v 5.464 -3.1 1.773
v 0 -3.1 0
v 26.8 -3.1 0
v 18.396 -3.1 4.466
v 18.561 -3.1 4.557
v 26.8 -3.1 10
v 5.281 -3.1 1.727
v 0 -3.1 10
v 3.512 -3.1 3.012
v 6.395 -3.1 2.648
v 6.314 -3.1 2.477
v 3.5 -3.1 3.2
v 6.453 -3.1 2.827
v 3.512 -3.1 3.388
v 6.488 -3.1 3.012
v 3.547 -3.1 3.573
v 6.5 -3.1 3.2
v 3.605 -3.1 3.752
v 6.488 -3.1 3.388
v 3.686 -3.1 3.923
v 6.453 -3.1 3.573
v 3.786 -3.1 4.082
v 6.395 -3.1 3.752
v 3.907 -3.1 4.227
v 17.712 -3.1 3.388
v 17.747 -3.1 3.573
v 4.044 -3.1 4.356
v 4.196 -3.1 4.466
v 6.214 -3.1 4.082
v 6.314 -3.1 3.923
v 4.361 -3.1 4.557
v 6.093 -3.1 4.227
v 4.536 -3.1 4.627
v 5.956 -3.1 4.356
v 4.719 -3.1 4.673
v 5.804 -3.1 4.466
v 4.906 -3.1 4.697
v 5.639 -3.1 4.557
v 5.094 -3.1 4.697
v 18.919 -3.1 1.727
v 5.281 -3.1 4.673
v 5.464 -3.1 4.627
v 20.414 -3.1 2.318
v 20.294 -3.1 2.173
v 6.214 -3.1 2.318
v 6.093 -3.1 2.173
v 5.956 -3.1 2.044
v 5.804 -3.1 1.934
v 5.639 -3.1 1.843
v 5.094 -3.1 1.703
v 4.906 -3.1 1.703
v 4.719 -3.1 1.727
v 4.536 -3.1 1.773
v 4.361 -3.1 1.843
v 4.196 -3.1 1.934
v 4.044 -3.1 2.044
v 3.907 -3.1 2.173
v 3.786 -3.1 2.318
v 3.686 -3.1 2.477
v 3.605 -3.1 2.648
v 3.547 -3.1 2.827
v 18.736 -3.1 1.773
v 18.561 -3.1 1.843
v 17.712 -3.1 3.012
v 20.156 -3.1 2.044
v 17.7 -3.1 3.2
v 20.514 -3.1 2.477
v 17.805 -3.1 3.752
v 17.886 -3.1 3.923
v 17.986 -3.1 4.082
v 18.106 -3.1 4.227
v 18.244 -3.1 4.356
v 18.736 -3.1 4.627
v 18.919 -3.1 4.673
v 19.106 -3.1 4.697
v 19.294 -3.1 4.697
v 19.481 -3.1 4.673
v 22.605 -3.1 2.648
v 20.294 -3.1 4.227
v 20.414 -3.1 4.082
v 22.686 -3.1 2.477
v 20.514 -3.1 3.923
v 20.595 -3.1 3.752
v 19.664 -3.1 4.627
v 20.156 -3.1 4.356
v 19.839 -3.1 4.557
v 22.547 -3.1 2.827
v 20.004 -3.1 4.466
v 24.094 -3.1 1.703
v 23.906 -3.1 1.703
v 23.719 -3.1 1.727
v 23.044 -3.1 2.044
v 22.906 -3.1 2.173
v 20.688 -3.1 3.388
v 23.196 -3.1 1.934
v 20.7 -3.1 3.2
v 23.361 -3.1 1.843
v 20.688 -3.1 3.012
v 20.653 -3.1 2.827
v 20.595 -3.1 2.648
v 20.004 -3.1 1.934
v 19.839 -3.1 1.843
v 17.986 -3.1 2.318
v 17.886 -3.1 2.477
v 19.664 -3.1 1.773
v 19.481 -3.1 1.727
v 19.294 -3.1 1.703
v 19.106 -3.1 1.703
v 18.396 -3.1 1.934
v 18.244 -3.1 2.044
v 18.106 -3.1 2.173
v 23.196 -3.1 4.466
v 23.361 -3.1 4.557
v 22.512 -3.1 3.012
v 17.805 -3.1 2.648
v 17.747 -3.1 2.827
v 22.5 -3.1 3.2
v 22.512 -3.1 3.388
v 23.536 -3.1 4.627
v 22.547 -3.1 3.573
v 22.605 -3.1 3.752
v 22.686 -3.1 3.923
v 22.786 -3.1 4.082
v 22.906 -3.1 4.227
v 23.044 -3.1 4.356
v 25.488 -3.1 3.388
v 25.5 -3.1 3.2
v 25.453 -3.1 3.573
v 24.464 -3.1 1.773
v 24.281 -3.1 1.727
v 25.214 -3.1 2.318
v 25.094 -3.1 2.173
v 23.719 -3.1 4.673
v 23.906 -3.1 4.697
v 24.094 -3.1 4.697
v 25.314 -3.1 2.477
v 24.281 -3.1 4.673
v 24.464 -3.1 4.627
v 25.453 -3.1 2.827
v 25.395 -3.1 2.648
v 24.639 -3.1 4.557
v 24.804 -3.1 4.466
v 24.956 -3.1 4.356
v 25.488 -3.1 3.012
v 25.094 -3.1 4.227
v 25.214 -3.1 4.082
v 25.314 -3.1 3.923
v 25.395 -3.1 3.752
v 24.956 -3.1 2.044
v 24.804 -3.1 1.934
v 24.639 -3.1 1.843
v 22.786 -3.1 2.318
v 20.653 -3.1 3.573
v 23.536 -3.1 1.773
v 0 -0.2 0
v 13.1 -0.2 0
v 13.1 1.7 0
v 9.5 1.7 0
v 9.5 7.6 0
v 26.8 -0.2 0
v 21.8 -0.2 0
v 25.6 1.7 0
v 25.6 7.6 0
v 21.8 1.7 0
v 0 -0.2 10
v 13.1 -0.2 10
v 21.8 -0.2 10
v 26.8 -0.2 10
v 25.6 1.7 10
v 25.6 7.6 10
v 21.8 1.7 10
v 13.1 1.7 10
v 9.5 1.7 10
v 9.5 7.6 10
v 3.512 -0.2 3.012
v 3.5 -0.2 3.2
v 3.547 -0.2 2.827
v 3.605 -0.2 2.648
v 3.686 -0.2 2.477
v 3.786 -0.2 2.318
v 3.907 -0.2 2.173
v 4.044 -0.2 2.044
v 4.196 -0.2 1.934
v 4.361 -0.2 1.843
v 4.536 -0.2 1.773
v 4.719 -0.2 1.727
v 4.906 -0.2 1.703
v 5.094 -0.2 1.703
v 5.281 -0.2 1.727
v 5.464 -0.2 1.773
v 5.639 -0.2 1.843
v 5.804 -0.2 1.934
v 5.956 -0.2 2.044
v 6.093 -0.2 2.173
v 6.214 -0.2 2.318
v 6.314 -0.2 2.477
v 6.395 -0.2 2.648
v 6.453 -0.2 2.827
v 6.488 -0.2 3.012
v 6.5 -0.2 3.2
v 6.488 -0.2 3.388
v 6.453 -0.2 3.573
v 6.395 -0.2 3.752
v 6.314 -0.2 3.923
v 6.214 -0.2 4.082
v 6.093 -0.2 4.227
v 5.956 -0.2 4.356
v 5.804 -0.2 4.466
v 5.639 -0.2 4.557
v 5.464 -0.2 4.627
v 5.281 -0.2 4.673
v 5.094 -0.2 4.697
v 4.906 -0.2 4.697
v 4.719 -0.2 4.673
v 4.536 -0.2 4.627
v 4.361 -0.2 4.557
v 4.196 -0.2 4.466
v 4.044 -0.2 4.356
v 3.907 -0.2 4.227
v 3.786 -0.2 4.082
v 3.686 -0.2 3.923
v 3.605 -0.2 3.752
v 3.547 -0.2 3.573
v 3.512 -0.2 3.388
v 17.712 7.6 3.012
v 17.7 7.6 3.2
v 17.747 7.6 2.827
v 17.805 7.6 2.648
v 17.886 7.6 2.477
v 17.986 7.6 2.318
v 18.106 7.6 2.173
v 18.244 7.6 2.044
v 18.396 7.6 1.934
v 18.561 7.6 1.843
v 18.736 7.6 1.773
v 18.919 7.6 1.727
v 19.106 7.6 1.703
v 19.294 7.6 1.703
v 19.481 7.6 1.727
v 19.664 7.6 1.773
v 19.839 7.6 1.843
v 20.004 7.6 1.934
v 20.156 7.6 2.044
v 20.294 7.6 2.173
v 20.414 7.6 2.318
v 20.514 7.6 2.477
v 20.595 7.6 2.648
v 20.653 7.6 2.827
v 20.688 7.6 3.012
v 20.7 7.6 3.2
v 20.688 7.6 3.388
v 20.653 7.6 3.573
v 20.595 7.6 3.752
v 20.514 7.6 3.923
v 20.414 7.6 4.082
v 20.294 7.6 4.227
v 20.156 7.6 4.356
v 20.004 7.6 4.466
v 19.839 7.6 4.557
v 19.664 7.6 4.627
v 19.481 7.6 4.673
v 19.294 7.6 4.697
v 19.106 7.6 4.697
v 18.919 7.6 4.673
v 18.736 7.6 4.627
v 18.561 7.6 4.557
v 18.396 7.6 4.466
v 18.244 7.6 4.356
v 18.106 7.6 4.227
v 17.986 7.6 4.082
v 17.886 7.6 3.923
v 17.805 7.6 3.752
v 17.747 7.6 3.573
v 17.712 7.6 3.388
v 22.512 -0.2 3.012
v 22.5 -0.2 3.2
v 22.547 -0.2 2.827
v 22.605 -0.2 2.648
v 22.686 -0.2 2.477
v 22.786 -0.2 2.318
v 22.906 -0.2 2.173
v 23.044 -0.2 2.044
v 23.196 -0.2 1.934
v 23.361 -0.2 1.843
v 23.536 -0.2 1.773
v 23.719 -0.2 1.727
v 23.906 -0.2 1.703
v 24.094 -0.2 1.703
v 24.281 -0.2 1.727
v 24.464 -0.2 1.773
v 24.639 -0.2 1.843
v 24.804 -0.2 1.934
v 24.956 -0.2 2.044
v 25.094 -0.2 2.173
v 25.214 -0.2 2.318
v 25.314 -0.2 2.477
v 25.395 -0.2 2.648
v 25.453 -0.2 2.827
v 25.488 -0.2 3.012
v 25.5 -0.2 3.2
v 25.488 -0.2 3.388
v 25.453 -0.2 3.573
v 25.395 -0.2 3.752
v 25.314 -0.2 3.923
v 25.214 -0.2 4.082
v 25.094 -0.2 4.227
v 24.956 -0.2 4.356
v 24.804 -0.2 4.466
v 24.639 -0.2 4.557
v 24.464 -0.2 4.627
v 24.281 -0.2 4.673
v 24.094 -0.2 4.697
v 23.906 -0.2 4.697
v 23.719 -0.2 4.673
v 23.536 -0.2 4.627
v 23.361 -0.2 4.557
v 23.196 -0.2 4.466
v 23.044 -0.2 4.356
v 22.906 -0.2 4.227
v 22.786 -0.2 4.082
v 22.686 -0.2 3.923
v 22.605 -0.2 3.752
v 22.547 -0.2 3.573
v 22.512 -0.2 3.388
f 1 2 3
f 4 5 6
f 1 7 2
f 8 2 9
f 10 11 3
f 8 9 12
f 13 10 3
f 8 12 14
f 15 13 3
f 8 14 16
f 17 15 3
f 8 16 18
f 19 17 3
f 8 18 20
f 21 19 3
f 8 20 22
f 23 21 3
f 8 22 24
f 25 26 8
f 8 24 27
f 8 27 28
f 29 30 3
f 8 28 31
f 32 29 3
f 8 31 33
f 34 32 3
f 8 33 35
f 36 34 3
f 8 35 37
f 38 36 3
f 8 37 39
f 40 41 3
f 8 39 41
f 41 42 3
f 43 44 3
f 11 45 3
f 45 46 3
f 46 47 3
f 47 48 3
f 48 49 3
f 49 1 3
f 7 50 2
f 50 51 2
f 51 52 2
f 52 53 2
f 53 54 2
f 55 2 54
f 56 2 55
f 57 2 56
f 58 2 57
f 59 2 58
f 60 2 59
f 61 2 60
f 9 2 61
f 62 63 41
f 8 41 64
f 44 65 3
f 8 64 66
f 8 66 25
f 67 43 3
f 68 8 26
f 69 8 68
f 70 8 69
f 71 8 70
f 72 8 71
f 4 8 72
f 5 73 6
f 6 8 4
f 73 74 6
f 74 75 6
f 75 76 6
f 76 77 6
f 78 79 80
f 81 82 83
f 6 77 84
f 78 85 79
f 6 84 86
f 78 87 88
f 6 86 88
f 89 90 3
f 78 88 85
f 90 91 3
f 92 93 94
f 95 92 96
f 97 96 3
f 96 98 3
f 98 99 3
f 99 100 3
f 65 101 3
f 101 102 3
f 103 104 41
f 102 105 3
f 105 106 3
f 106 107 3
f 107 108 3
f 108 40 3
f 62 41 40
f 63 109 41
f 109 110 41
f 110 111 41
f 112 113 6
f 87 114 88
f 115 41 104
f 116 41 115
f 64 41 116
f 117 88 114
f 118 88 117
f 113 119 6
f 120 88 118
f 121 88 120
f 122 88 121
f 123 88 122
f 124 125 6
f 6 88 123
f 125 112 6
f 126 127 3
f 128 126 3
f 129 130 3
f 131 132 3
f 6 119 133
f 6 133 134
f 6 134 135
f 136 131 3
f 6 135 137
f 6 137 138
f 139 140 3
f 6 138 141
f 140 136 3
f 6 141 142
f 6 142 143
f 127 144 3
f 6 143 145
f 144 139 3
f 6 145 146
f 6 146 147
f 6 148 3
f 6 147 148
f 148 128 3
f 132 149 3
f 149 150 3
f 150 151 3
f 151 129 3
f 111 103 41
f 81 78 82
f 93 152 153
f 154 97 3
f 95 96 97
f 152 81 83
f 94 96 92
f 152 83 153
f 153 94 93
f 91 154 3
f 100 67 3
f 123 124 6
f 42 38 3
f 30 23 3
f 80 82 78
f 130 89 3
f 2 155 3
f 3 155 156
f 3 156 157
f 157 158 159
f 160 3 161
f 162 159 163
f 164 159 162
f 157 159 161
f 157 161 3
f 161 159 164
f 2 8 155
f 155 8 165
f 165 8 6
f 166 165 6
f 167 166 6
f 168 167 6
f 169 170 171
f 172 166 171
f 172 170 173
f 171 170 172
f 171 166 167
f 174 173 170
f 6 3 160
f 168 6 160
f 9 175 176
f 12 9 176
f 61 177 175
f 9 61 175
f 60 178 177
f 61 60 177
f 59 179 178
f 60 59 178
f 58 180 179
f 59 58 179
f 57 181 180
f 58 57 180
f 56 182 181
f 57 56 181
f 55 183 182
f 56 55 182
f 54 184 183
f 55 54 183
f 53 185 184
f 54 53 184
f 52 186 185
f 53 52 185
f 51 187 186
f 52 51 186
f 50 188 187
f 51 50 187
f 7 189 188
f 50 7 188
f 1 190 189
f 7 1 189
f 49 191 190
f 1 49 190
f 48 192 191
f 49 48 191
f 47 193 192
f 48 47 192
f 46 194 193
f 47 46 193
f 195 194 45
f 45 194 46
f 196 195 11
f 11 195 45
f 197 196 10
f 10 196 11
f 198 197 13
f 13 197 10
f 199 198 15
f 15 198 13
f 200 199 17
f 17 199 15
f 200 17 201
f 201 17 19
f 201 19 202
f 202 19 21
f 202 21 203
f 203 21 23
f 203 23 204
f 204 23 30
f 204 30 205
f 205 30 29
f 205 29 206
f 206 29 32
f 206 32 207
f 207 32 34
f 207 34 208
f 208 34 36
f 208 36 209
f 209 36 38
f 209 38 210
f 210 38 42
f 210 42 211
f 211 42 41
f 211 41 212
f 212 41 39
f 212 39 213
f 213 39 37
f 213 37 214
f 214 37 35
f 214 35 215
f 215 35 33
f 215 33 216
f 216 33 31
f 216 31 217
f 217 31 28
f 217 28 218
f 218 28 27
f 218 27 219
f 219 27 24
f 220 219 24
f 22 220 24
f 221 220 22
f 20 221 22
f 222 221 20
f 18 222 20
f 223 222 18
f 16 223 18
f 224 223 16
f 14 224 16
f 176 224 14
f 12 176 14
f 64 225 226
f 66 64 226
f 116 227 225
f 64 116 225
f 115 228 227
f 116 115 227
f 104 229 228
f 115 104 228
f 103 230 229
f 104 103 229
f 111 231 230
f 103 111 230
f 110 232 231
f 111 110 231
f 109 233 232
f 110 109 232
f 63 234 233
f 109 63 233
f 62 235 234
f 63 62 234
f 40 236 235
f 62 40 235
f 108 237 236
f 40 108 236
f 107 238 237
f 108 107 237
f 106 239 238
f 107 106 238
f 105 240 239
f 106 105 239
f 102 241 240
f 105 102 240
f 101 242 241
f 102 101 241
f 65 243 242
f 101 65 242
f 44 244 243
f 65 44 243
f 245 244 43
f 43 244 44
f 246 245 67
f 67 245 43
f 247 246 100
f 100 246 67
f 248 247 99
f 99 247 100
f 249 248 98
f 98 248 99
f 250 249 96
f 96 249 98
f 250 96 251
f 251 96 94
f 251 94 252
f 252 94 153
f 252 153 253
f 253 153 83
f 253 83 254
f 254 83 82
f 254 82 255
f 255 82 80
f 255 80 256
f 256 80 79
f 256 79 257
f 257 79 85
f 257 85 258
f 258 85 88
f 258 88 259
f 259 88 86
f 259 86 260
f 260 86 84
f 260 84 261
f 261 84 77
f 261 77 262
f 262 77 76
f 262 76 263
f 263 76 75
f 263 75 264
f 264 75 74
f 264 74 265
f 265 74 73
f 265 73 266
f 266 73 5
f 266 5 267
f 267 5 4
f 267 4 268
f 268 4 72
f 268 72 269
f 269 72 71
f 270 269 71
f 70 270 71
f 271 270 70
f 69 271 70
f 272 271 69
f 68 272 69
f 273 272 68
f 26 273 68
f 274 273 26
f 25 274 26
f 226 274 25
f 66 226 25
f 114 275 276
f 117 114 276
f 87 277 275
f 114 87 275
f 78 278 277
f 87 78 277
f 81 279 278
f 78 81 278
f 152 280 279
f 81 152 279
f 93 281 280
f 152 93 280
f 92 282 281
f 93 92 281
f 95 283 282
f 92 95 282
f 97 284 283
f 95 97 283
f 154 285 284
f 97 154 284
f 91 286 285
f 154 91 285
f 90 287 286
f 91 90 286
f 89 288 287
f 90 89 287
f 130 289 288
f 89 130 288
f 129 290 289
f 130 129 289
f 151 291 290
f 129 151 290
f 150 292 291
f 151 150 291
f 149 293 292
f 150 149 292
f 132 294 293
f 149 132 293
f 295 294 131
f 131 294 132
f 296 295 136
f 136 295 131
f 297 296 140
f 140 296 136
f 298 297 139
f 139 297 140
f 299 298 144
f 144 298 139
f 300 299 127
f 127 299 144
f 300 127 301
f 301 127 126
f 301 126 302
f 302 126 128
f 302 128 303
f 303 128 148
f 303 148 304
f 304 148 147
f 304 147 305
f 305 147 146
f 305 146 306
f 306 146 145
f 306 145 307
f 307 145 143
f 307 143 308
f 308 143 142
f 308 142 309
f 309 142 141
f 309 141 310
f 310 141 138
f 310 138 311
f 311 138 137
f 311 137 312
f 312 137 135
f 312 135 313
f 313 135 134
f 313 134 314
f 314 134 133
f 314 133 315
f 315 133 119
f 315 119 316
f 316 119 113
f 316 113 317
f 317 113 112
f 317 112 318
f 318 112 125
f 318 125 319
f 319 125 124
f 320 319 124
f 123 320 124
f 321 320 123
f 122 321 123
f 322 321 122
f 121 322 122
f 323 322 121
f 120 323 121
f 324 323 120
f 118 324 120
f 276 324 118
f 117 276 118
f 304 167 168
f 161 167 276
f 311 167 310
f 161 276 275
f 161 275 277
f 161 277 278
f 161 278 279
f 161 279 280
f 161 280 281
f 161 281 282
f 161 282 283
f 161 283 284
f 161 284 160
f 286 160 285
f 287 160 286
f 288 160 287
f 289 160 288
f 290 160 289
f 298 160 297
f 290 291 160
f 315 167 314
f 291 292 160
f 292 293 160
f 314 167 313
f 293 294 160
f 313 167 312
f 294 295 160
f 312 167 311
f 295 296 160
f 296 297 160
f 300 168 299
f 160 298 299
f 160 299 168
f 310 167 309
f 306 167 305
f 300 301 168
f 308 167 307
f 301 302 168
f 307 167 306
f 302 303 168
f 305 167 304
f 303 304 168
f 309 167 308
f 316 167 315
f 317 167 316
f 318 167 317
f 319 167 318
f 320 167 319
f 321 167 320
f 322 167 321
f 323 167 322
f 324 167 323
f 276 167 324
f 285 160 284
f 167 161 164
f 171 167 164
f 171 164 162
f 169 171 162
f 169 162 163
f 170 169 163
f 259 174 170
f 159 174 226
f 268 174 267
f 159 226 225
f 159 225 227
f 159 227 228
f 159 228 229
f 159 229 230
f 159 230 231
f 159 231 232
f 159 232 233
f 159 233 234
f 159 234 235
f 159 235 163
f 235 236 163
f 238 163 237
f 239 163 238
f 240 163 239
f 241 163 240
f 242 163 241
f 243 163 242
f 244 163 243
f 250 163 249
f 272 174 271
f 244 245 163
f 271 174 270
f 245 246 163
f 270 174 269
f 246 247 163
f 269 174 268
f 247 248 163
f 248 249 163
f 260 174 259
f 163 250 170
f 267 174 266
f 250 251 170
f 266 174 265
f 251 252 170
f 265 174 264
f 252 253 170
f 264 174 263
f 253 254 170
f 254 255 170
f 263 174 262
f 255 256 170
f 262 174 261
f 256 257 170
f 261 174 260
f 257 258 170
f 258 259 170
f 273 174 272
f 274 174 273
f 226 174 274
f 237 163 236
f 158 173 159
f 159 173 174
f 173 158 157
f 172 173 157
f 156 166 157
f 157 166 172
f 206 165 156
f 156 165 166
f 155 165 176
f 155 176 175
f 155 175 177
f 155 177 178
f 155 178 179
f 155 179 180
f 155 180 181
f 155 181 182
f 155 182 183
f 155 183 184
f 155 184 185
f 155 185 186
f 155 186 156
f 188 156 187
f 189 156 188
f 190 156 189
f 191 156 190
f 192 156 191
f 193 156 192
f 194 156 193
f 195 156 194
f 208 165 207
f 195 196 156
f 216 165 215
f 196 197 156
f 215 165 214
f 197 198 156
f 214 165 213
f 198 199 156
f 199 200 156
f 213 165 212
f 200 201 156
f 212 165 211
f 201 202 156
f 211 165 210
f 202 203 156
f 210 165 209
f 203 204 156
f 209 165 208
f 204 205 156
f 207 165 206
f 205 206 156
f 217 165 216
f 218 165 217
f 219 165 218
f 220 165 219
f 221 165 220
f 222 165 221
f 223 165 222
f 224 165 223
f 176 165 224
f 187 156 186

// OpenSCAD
/*
Projet ReprapJeanne

Fixations des fins de courses optiques

github: https://github.com/jeannedhack/reprapJeanneV2

hackerspace Jeanne d'hack https://www.jeannedhack.org
by moebiuseye

License GNU-GPL 

*/

// Fixation
color([0,0,1])
difference() {
    linear_extrude(height=10)
    union() {
        translate([9.5,1.7,0])
        square([16.1,5.9]);
        translate([13.1,-3.1])
        square([8.7,7]);
        translate([0,-3.1])
        square([26.8,2.9]);
    }
    color([1,0,0])
    translate([5,0,0])
       union(){
       //screw holes
               translate([0 ,5 ,3.2])rotate([90,0,0]) cylinder(r=1.5,h=10,$fn=50);
               translate([19,1 ,3.2])rotate([90,0,0]) cylinder(r=1.5,h=10,$fn=50);
               translate([14.2 ,10,3.2])rotate([90,0,0]) cylinder(r=1.5,h=20,$fn=50);
       }
}

/*
// For testing / editing

linear_extrude (height=2000)
                         import (file="../../reprapJeanneV2/DESSINS-DXF-OPENSCAD/profil-axe.dxf", layer="0", $fn=100);


color([1,0,0]) translate([26.8,-5,0]) rotate(180) difference(){
       union(){
               linear_extrude(6.4)
                       import (file="../../reprapJeanne/DXF-SCAD-AND-OTHERS/optical-end-stop.dxf", layer="fourche", $fn=100);
               translate([0,0,-1.8]) linear_extrude(10)
                       import (file="../../reprapJeanne/DXF-SCAD-AND-OTHERS/optical-end-stop.dxf", layer="PCB", $fn=100);
       }
       union(){
       //screw holes
               translate([2.8,5,3.2])rotate([90,0,0]) cylinder(r=1.5,h=10,$fn=50);
               translate([21.8,5,3.2])rotate([90,0,0]) cylinder(r=1.5,h=10,$fn=50);
       }

}

*/
